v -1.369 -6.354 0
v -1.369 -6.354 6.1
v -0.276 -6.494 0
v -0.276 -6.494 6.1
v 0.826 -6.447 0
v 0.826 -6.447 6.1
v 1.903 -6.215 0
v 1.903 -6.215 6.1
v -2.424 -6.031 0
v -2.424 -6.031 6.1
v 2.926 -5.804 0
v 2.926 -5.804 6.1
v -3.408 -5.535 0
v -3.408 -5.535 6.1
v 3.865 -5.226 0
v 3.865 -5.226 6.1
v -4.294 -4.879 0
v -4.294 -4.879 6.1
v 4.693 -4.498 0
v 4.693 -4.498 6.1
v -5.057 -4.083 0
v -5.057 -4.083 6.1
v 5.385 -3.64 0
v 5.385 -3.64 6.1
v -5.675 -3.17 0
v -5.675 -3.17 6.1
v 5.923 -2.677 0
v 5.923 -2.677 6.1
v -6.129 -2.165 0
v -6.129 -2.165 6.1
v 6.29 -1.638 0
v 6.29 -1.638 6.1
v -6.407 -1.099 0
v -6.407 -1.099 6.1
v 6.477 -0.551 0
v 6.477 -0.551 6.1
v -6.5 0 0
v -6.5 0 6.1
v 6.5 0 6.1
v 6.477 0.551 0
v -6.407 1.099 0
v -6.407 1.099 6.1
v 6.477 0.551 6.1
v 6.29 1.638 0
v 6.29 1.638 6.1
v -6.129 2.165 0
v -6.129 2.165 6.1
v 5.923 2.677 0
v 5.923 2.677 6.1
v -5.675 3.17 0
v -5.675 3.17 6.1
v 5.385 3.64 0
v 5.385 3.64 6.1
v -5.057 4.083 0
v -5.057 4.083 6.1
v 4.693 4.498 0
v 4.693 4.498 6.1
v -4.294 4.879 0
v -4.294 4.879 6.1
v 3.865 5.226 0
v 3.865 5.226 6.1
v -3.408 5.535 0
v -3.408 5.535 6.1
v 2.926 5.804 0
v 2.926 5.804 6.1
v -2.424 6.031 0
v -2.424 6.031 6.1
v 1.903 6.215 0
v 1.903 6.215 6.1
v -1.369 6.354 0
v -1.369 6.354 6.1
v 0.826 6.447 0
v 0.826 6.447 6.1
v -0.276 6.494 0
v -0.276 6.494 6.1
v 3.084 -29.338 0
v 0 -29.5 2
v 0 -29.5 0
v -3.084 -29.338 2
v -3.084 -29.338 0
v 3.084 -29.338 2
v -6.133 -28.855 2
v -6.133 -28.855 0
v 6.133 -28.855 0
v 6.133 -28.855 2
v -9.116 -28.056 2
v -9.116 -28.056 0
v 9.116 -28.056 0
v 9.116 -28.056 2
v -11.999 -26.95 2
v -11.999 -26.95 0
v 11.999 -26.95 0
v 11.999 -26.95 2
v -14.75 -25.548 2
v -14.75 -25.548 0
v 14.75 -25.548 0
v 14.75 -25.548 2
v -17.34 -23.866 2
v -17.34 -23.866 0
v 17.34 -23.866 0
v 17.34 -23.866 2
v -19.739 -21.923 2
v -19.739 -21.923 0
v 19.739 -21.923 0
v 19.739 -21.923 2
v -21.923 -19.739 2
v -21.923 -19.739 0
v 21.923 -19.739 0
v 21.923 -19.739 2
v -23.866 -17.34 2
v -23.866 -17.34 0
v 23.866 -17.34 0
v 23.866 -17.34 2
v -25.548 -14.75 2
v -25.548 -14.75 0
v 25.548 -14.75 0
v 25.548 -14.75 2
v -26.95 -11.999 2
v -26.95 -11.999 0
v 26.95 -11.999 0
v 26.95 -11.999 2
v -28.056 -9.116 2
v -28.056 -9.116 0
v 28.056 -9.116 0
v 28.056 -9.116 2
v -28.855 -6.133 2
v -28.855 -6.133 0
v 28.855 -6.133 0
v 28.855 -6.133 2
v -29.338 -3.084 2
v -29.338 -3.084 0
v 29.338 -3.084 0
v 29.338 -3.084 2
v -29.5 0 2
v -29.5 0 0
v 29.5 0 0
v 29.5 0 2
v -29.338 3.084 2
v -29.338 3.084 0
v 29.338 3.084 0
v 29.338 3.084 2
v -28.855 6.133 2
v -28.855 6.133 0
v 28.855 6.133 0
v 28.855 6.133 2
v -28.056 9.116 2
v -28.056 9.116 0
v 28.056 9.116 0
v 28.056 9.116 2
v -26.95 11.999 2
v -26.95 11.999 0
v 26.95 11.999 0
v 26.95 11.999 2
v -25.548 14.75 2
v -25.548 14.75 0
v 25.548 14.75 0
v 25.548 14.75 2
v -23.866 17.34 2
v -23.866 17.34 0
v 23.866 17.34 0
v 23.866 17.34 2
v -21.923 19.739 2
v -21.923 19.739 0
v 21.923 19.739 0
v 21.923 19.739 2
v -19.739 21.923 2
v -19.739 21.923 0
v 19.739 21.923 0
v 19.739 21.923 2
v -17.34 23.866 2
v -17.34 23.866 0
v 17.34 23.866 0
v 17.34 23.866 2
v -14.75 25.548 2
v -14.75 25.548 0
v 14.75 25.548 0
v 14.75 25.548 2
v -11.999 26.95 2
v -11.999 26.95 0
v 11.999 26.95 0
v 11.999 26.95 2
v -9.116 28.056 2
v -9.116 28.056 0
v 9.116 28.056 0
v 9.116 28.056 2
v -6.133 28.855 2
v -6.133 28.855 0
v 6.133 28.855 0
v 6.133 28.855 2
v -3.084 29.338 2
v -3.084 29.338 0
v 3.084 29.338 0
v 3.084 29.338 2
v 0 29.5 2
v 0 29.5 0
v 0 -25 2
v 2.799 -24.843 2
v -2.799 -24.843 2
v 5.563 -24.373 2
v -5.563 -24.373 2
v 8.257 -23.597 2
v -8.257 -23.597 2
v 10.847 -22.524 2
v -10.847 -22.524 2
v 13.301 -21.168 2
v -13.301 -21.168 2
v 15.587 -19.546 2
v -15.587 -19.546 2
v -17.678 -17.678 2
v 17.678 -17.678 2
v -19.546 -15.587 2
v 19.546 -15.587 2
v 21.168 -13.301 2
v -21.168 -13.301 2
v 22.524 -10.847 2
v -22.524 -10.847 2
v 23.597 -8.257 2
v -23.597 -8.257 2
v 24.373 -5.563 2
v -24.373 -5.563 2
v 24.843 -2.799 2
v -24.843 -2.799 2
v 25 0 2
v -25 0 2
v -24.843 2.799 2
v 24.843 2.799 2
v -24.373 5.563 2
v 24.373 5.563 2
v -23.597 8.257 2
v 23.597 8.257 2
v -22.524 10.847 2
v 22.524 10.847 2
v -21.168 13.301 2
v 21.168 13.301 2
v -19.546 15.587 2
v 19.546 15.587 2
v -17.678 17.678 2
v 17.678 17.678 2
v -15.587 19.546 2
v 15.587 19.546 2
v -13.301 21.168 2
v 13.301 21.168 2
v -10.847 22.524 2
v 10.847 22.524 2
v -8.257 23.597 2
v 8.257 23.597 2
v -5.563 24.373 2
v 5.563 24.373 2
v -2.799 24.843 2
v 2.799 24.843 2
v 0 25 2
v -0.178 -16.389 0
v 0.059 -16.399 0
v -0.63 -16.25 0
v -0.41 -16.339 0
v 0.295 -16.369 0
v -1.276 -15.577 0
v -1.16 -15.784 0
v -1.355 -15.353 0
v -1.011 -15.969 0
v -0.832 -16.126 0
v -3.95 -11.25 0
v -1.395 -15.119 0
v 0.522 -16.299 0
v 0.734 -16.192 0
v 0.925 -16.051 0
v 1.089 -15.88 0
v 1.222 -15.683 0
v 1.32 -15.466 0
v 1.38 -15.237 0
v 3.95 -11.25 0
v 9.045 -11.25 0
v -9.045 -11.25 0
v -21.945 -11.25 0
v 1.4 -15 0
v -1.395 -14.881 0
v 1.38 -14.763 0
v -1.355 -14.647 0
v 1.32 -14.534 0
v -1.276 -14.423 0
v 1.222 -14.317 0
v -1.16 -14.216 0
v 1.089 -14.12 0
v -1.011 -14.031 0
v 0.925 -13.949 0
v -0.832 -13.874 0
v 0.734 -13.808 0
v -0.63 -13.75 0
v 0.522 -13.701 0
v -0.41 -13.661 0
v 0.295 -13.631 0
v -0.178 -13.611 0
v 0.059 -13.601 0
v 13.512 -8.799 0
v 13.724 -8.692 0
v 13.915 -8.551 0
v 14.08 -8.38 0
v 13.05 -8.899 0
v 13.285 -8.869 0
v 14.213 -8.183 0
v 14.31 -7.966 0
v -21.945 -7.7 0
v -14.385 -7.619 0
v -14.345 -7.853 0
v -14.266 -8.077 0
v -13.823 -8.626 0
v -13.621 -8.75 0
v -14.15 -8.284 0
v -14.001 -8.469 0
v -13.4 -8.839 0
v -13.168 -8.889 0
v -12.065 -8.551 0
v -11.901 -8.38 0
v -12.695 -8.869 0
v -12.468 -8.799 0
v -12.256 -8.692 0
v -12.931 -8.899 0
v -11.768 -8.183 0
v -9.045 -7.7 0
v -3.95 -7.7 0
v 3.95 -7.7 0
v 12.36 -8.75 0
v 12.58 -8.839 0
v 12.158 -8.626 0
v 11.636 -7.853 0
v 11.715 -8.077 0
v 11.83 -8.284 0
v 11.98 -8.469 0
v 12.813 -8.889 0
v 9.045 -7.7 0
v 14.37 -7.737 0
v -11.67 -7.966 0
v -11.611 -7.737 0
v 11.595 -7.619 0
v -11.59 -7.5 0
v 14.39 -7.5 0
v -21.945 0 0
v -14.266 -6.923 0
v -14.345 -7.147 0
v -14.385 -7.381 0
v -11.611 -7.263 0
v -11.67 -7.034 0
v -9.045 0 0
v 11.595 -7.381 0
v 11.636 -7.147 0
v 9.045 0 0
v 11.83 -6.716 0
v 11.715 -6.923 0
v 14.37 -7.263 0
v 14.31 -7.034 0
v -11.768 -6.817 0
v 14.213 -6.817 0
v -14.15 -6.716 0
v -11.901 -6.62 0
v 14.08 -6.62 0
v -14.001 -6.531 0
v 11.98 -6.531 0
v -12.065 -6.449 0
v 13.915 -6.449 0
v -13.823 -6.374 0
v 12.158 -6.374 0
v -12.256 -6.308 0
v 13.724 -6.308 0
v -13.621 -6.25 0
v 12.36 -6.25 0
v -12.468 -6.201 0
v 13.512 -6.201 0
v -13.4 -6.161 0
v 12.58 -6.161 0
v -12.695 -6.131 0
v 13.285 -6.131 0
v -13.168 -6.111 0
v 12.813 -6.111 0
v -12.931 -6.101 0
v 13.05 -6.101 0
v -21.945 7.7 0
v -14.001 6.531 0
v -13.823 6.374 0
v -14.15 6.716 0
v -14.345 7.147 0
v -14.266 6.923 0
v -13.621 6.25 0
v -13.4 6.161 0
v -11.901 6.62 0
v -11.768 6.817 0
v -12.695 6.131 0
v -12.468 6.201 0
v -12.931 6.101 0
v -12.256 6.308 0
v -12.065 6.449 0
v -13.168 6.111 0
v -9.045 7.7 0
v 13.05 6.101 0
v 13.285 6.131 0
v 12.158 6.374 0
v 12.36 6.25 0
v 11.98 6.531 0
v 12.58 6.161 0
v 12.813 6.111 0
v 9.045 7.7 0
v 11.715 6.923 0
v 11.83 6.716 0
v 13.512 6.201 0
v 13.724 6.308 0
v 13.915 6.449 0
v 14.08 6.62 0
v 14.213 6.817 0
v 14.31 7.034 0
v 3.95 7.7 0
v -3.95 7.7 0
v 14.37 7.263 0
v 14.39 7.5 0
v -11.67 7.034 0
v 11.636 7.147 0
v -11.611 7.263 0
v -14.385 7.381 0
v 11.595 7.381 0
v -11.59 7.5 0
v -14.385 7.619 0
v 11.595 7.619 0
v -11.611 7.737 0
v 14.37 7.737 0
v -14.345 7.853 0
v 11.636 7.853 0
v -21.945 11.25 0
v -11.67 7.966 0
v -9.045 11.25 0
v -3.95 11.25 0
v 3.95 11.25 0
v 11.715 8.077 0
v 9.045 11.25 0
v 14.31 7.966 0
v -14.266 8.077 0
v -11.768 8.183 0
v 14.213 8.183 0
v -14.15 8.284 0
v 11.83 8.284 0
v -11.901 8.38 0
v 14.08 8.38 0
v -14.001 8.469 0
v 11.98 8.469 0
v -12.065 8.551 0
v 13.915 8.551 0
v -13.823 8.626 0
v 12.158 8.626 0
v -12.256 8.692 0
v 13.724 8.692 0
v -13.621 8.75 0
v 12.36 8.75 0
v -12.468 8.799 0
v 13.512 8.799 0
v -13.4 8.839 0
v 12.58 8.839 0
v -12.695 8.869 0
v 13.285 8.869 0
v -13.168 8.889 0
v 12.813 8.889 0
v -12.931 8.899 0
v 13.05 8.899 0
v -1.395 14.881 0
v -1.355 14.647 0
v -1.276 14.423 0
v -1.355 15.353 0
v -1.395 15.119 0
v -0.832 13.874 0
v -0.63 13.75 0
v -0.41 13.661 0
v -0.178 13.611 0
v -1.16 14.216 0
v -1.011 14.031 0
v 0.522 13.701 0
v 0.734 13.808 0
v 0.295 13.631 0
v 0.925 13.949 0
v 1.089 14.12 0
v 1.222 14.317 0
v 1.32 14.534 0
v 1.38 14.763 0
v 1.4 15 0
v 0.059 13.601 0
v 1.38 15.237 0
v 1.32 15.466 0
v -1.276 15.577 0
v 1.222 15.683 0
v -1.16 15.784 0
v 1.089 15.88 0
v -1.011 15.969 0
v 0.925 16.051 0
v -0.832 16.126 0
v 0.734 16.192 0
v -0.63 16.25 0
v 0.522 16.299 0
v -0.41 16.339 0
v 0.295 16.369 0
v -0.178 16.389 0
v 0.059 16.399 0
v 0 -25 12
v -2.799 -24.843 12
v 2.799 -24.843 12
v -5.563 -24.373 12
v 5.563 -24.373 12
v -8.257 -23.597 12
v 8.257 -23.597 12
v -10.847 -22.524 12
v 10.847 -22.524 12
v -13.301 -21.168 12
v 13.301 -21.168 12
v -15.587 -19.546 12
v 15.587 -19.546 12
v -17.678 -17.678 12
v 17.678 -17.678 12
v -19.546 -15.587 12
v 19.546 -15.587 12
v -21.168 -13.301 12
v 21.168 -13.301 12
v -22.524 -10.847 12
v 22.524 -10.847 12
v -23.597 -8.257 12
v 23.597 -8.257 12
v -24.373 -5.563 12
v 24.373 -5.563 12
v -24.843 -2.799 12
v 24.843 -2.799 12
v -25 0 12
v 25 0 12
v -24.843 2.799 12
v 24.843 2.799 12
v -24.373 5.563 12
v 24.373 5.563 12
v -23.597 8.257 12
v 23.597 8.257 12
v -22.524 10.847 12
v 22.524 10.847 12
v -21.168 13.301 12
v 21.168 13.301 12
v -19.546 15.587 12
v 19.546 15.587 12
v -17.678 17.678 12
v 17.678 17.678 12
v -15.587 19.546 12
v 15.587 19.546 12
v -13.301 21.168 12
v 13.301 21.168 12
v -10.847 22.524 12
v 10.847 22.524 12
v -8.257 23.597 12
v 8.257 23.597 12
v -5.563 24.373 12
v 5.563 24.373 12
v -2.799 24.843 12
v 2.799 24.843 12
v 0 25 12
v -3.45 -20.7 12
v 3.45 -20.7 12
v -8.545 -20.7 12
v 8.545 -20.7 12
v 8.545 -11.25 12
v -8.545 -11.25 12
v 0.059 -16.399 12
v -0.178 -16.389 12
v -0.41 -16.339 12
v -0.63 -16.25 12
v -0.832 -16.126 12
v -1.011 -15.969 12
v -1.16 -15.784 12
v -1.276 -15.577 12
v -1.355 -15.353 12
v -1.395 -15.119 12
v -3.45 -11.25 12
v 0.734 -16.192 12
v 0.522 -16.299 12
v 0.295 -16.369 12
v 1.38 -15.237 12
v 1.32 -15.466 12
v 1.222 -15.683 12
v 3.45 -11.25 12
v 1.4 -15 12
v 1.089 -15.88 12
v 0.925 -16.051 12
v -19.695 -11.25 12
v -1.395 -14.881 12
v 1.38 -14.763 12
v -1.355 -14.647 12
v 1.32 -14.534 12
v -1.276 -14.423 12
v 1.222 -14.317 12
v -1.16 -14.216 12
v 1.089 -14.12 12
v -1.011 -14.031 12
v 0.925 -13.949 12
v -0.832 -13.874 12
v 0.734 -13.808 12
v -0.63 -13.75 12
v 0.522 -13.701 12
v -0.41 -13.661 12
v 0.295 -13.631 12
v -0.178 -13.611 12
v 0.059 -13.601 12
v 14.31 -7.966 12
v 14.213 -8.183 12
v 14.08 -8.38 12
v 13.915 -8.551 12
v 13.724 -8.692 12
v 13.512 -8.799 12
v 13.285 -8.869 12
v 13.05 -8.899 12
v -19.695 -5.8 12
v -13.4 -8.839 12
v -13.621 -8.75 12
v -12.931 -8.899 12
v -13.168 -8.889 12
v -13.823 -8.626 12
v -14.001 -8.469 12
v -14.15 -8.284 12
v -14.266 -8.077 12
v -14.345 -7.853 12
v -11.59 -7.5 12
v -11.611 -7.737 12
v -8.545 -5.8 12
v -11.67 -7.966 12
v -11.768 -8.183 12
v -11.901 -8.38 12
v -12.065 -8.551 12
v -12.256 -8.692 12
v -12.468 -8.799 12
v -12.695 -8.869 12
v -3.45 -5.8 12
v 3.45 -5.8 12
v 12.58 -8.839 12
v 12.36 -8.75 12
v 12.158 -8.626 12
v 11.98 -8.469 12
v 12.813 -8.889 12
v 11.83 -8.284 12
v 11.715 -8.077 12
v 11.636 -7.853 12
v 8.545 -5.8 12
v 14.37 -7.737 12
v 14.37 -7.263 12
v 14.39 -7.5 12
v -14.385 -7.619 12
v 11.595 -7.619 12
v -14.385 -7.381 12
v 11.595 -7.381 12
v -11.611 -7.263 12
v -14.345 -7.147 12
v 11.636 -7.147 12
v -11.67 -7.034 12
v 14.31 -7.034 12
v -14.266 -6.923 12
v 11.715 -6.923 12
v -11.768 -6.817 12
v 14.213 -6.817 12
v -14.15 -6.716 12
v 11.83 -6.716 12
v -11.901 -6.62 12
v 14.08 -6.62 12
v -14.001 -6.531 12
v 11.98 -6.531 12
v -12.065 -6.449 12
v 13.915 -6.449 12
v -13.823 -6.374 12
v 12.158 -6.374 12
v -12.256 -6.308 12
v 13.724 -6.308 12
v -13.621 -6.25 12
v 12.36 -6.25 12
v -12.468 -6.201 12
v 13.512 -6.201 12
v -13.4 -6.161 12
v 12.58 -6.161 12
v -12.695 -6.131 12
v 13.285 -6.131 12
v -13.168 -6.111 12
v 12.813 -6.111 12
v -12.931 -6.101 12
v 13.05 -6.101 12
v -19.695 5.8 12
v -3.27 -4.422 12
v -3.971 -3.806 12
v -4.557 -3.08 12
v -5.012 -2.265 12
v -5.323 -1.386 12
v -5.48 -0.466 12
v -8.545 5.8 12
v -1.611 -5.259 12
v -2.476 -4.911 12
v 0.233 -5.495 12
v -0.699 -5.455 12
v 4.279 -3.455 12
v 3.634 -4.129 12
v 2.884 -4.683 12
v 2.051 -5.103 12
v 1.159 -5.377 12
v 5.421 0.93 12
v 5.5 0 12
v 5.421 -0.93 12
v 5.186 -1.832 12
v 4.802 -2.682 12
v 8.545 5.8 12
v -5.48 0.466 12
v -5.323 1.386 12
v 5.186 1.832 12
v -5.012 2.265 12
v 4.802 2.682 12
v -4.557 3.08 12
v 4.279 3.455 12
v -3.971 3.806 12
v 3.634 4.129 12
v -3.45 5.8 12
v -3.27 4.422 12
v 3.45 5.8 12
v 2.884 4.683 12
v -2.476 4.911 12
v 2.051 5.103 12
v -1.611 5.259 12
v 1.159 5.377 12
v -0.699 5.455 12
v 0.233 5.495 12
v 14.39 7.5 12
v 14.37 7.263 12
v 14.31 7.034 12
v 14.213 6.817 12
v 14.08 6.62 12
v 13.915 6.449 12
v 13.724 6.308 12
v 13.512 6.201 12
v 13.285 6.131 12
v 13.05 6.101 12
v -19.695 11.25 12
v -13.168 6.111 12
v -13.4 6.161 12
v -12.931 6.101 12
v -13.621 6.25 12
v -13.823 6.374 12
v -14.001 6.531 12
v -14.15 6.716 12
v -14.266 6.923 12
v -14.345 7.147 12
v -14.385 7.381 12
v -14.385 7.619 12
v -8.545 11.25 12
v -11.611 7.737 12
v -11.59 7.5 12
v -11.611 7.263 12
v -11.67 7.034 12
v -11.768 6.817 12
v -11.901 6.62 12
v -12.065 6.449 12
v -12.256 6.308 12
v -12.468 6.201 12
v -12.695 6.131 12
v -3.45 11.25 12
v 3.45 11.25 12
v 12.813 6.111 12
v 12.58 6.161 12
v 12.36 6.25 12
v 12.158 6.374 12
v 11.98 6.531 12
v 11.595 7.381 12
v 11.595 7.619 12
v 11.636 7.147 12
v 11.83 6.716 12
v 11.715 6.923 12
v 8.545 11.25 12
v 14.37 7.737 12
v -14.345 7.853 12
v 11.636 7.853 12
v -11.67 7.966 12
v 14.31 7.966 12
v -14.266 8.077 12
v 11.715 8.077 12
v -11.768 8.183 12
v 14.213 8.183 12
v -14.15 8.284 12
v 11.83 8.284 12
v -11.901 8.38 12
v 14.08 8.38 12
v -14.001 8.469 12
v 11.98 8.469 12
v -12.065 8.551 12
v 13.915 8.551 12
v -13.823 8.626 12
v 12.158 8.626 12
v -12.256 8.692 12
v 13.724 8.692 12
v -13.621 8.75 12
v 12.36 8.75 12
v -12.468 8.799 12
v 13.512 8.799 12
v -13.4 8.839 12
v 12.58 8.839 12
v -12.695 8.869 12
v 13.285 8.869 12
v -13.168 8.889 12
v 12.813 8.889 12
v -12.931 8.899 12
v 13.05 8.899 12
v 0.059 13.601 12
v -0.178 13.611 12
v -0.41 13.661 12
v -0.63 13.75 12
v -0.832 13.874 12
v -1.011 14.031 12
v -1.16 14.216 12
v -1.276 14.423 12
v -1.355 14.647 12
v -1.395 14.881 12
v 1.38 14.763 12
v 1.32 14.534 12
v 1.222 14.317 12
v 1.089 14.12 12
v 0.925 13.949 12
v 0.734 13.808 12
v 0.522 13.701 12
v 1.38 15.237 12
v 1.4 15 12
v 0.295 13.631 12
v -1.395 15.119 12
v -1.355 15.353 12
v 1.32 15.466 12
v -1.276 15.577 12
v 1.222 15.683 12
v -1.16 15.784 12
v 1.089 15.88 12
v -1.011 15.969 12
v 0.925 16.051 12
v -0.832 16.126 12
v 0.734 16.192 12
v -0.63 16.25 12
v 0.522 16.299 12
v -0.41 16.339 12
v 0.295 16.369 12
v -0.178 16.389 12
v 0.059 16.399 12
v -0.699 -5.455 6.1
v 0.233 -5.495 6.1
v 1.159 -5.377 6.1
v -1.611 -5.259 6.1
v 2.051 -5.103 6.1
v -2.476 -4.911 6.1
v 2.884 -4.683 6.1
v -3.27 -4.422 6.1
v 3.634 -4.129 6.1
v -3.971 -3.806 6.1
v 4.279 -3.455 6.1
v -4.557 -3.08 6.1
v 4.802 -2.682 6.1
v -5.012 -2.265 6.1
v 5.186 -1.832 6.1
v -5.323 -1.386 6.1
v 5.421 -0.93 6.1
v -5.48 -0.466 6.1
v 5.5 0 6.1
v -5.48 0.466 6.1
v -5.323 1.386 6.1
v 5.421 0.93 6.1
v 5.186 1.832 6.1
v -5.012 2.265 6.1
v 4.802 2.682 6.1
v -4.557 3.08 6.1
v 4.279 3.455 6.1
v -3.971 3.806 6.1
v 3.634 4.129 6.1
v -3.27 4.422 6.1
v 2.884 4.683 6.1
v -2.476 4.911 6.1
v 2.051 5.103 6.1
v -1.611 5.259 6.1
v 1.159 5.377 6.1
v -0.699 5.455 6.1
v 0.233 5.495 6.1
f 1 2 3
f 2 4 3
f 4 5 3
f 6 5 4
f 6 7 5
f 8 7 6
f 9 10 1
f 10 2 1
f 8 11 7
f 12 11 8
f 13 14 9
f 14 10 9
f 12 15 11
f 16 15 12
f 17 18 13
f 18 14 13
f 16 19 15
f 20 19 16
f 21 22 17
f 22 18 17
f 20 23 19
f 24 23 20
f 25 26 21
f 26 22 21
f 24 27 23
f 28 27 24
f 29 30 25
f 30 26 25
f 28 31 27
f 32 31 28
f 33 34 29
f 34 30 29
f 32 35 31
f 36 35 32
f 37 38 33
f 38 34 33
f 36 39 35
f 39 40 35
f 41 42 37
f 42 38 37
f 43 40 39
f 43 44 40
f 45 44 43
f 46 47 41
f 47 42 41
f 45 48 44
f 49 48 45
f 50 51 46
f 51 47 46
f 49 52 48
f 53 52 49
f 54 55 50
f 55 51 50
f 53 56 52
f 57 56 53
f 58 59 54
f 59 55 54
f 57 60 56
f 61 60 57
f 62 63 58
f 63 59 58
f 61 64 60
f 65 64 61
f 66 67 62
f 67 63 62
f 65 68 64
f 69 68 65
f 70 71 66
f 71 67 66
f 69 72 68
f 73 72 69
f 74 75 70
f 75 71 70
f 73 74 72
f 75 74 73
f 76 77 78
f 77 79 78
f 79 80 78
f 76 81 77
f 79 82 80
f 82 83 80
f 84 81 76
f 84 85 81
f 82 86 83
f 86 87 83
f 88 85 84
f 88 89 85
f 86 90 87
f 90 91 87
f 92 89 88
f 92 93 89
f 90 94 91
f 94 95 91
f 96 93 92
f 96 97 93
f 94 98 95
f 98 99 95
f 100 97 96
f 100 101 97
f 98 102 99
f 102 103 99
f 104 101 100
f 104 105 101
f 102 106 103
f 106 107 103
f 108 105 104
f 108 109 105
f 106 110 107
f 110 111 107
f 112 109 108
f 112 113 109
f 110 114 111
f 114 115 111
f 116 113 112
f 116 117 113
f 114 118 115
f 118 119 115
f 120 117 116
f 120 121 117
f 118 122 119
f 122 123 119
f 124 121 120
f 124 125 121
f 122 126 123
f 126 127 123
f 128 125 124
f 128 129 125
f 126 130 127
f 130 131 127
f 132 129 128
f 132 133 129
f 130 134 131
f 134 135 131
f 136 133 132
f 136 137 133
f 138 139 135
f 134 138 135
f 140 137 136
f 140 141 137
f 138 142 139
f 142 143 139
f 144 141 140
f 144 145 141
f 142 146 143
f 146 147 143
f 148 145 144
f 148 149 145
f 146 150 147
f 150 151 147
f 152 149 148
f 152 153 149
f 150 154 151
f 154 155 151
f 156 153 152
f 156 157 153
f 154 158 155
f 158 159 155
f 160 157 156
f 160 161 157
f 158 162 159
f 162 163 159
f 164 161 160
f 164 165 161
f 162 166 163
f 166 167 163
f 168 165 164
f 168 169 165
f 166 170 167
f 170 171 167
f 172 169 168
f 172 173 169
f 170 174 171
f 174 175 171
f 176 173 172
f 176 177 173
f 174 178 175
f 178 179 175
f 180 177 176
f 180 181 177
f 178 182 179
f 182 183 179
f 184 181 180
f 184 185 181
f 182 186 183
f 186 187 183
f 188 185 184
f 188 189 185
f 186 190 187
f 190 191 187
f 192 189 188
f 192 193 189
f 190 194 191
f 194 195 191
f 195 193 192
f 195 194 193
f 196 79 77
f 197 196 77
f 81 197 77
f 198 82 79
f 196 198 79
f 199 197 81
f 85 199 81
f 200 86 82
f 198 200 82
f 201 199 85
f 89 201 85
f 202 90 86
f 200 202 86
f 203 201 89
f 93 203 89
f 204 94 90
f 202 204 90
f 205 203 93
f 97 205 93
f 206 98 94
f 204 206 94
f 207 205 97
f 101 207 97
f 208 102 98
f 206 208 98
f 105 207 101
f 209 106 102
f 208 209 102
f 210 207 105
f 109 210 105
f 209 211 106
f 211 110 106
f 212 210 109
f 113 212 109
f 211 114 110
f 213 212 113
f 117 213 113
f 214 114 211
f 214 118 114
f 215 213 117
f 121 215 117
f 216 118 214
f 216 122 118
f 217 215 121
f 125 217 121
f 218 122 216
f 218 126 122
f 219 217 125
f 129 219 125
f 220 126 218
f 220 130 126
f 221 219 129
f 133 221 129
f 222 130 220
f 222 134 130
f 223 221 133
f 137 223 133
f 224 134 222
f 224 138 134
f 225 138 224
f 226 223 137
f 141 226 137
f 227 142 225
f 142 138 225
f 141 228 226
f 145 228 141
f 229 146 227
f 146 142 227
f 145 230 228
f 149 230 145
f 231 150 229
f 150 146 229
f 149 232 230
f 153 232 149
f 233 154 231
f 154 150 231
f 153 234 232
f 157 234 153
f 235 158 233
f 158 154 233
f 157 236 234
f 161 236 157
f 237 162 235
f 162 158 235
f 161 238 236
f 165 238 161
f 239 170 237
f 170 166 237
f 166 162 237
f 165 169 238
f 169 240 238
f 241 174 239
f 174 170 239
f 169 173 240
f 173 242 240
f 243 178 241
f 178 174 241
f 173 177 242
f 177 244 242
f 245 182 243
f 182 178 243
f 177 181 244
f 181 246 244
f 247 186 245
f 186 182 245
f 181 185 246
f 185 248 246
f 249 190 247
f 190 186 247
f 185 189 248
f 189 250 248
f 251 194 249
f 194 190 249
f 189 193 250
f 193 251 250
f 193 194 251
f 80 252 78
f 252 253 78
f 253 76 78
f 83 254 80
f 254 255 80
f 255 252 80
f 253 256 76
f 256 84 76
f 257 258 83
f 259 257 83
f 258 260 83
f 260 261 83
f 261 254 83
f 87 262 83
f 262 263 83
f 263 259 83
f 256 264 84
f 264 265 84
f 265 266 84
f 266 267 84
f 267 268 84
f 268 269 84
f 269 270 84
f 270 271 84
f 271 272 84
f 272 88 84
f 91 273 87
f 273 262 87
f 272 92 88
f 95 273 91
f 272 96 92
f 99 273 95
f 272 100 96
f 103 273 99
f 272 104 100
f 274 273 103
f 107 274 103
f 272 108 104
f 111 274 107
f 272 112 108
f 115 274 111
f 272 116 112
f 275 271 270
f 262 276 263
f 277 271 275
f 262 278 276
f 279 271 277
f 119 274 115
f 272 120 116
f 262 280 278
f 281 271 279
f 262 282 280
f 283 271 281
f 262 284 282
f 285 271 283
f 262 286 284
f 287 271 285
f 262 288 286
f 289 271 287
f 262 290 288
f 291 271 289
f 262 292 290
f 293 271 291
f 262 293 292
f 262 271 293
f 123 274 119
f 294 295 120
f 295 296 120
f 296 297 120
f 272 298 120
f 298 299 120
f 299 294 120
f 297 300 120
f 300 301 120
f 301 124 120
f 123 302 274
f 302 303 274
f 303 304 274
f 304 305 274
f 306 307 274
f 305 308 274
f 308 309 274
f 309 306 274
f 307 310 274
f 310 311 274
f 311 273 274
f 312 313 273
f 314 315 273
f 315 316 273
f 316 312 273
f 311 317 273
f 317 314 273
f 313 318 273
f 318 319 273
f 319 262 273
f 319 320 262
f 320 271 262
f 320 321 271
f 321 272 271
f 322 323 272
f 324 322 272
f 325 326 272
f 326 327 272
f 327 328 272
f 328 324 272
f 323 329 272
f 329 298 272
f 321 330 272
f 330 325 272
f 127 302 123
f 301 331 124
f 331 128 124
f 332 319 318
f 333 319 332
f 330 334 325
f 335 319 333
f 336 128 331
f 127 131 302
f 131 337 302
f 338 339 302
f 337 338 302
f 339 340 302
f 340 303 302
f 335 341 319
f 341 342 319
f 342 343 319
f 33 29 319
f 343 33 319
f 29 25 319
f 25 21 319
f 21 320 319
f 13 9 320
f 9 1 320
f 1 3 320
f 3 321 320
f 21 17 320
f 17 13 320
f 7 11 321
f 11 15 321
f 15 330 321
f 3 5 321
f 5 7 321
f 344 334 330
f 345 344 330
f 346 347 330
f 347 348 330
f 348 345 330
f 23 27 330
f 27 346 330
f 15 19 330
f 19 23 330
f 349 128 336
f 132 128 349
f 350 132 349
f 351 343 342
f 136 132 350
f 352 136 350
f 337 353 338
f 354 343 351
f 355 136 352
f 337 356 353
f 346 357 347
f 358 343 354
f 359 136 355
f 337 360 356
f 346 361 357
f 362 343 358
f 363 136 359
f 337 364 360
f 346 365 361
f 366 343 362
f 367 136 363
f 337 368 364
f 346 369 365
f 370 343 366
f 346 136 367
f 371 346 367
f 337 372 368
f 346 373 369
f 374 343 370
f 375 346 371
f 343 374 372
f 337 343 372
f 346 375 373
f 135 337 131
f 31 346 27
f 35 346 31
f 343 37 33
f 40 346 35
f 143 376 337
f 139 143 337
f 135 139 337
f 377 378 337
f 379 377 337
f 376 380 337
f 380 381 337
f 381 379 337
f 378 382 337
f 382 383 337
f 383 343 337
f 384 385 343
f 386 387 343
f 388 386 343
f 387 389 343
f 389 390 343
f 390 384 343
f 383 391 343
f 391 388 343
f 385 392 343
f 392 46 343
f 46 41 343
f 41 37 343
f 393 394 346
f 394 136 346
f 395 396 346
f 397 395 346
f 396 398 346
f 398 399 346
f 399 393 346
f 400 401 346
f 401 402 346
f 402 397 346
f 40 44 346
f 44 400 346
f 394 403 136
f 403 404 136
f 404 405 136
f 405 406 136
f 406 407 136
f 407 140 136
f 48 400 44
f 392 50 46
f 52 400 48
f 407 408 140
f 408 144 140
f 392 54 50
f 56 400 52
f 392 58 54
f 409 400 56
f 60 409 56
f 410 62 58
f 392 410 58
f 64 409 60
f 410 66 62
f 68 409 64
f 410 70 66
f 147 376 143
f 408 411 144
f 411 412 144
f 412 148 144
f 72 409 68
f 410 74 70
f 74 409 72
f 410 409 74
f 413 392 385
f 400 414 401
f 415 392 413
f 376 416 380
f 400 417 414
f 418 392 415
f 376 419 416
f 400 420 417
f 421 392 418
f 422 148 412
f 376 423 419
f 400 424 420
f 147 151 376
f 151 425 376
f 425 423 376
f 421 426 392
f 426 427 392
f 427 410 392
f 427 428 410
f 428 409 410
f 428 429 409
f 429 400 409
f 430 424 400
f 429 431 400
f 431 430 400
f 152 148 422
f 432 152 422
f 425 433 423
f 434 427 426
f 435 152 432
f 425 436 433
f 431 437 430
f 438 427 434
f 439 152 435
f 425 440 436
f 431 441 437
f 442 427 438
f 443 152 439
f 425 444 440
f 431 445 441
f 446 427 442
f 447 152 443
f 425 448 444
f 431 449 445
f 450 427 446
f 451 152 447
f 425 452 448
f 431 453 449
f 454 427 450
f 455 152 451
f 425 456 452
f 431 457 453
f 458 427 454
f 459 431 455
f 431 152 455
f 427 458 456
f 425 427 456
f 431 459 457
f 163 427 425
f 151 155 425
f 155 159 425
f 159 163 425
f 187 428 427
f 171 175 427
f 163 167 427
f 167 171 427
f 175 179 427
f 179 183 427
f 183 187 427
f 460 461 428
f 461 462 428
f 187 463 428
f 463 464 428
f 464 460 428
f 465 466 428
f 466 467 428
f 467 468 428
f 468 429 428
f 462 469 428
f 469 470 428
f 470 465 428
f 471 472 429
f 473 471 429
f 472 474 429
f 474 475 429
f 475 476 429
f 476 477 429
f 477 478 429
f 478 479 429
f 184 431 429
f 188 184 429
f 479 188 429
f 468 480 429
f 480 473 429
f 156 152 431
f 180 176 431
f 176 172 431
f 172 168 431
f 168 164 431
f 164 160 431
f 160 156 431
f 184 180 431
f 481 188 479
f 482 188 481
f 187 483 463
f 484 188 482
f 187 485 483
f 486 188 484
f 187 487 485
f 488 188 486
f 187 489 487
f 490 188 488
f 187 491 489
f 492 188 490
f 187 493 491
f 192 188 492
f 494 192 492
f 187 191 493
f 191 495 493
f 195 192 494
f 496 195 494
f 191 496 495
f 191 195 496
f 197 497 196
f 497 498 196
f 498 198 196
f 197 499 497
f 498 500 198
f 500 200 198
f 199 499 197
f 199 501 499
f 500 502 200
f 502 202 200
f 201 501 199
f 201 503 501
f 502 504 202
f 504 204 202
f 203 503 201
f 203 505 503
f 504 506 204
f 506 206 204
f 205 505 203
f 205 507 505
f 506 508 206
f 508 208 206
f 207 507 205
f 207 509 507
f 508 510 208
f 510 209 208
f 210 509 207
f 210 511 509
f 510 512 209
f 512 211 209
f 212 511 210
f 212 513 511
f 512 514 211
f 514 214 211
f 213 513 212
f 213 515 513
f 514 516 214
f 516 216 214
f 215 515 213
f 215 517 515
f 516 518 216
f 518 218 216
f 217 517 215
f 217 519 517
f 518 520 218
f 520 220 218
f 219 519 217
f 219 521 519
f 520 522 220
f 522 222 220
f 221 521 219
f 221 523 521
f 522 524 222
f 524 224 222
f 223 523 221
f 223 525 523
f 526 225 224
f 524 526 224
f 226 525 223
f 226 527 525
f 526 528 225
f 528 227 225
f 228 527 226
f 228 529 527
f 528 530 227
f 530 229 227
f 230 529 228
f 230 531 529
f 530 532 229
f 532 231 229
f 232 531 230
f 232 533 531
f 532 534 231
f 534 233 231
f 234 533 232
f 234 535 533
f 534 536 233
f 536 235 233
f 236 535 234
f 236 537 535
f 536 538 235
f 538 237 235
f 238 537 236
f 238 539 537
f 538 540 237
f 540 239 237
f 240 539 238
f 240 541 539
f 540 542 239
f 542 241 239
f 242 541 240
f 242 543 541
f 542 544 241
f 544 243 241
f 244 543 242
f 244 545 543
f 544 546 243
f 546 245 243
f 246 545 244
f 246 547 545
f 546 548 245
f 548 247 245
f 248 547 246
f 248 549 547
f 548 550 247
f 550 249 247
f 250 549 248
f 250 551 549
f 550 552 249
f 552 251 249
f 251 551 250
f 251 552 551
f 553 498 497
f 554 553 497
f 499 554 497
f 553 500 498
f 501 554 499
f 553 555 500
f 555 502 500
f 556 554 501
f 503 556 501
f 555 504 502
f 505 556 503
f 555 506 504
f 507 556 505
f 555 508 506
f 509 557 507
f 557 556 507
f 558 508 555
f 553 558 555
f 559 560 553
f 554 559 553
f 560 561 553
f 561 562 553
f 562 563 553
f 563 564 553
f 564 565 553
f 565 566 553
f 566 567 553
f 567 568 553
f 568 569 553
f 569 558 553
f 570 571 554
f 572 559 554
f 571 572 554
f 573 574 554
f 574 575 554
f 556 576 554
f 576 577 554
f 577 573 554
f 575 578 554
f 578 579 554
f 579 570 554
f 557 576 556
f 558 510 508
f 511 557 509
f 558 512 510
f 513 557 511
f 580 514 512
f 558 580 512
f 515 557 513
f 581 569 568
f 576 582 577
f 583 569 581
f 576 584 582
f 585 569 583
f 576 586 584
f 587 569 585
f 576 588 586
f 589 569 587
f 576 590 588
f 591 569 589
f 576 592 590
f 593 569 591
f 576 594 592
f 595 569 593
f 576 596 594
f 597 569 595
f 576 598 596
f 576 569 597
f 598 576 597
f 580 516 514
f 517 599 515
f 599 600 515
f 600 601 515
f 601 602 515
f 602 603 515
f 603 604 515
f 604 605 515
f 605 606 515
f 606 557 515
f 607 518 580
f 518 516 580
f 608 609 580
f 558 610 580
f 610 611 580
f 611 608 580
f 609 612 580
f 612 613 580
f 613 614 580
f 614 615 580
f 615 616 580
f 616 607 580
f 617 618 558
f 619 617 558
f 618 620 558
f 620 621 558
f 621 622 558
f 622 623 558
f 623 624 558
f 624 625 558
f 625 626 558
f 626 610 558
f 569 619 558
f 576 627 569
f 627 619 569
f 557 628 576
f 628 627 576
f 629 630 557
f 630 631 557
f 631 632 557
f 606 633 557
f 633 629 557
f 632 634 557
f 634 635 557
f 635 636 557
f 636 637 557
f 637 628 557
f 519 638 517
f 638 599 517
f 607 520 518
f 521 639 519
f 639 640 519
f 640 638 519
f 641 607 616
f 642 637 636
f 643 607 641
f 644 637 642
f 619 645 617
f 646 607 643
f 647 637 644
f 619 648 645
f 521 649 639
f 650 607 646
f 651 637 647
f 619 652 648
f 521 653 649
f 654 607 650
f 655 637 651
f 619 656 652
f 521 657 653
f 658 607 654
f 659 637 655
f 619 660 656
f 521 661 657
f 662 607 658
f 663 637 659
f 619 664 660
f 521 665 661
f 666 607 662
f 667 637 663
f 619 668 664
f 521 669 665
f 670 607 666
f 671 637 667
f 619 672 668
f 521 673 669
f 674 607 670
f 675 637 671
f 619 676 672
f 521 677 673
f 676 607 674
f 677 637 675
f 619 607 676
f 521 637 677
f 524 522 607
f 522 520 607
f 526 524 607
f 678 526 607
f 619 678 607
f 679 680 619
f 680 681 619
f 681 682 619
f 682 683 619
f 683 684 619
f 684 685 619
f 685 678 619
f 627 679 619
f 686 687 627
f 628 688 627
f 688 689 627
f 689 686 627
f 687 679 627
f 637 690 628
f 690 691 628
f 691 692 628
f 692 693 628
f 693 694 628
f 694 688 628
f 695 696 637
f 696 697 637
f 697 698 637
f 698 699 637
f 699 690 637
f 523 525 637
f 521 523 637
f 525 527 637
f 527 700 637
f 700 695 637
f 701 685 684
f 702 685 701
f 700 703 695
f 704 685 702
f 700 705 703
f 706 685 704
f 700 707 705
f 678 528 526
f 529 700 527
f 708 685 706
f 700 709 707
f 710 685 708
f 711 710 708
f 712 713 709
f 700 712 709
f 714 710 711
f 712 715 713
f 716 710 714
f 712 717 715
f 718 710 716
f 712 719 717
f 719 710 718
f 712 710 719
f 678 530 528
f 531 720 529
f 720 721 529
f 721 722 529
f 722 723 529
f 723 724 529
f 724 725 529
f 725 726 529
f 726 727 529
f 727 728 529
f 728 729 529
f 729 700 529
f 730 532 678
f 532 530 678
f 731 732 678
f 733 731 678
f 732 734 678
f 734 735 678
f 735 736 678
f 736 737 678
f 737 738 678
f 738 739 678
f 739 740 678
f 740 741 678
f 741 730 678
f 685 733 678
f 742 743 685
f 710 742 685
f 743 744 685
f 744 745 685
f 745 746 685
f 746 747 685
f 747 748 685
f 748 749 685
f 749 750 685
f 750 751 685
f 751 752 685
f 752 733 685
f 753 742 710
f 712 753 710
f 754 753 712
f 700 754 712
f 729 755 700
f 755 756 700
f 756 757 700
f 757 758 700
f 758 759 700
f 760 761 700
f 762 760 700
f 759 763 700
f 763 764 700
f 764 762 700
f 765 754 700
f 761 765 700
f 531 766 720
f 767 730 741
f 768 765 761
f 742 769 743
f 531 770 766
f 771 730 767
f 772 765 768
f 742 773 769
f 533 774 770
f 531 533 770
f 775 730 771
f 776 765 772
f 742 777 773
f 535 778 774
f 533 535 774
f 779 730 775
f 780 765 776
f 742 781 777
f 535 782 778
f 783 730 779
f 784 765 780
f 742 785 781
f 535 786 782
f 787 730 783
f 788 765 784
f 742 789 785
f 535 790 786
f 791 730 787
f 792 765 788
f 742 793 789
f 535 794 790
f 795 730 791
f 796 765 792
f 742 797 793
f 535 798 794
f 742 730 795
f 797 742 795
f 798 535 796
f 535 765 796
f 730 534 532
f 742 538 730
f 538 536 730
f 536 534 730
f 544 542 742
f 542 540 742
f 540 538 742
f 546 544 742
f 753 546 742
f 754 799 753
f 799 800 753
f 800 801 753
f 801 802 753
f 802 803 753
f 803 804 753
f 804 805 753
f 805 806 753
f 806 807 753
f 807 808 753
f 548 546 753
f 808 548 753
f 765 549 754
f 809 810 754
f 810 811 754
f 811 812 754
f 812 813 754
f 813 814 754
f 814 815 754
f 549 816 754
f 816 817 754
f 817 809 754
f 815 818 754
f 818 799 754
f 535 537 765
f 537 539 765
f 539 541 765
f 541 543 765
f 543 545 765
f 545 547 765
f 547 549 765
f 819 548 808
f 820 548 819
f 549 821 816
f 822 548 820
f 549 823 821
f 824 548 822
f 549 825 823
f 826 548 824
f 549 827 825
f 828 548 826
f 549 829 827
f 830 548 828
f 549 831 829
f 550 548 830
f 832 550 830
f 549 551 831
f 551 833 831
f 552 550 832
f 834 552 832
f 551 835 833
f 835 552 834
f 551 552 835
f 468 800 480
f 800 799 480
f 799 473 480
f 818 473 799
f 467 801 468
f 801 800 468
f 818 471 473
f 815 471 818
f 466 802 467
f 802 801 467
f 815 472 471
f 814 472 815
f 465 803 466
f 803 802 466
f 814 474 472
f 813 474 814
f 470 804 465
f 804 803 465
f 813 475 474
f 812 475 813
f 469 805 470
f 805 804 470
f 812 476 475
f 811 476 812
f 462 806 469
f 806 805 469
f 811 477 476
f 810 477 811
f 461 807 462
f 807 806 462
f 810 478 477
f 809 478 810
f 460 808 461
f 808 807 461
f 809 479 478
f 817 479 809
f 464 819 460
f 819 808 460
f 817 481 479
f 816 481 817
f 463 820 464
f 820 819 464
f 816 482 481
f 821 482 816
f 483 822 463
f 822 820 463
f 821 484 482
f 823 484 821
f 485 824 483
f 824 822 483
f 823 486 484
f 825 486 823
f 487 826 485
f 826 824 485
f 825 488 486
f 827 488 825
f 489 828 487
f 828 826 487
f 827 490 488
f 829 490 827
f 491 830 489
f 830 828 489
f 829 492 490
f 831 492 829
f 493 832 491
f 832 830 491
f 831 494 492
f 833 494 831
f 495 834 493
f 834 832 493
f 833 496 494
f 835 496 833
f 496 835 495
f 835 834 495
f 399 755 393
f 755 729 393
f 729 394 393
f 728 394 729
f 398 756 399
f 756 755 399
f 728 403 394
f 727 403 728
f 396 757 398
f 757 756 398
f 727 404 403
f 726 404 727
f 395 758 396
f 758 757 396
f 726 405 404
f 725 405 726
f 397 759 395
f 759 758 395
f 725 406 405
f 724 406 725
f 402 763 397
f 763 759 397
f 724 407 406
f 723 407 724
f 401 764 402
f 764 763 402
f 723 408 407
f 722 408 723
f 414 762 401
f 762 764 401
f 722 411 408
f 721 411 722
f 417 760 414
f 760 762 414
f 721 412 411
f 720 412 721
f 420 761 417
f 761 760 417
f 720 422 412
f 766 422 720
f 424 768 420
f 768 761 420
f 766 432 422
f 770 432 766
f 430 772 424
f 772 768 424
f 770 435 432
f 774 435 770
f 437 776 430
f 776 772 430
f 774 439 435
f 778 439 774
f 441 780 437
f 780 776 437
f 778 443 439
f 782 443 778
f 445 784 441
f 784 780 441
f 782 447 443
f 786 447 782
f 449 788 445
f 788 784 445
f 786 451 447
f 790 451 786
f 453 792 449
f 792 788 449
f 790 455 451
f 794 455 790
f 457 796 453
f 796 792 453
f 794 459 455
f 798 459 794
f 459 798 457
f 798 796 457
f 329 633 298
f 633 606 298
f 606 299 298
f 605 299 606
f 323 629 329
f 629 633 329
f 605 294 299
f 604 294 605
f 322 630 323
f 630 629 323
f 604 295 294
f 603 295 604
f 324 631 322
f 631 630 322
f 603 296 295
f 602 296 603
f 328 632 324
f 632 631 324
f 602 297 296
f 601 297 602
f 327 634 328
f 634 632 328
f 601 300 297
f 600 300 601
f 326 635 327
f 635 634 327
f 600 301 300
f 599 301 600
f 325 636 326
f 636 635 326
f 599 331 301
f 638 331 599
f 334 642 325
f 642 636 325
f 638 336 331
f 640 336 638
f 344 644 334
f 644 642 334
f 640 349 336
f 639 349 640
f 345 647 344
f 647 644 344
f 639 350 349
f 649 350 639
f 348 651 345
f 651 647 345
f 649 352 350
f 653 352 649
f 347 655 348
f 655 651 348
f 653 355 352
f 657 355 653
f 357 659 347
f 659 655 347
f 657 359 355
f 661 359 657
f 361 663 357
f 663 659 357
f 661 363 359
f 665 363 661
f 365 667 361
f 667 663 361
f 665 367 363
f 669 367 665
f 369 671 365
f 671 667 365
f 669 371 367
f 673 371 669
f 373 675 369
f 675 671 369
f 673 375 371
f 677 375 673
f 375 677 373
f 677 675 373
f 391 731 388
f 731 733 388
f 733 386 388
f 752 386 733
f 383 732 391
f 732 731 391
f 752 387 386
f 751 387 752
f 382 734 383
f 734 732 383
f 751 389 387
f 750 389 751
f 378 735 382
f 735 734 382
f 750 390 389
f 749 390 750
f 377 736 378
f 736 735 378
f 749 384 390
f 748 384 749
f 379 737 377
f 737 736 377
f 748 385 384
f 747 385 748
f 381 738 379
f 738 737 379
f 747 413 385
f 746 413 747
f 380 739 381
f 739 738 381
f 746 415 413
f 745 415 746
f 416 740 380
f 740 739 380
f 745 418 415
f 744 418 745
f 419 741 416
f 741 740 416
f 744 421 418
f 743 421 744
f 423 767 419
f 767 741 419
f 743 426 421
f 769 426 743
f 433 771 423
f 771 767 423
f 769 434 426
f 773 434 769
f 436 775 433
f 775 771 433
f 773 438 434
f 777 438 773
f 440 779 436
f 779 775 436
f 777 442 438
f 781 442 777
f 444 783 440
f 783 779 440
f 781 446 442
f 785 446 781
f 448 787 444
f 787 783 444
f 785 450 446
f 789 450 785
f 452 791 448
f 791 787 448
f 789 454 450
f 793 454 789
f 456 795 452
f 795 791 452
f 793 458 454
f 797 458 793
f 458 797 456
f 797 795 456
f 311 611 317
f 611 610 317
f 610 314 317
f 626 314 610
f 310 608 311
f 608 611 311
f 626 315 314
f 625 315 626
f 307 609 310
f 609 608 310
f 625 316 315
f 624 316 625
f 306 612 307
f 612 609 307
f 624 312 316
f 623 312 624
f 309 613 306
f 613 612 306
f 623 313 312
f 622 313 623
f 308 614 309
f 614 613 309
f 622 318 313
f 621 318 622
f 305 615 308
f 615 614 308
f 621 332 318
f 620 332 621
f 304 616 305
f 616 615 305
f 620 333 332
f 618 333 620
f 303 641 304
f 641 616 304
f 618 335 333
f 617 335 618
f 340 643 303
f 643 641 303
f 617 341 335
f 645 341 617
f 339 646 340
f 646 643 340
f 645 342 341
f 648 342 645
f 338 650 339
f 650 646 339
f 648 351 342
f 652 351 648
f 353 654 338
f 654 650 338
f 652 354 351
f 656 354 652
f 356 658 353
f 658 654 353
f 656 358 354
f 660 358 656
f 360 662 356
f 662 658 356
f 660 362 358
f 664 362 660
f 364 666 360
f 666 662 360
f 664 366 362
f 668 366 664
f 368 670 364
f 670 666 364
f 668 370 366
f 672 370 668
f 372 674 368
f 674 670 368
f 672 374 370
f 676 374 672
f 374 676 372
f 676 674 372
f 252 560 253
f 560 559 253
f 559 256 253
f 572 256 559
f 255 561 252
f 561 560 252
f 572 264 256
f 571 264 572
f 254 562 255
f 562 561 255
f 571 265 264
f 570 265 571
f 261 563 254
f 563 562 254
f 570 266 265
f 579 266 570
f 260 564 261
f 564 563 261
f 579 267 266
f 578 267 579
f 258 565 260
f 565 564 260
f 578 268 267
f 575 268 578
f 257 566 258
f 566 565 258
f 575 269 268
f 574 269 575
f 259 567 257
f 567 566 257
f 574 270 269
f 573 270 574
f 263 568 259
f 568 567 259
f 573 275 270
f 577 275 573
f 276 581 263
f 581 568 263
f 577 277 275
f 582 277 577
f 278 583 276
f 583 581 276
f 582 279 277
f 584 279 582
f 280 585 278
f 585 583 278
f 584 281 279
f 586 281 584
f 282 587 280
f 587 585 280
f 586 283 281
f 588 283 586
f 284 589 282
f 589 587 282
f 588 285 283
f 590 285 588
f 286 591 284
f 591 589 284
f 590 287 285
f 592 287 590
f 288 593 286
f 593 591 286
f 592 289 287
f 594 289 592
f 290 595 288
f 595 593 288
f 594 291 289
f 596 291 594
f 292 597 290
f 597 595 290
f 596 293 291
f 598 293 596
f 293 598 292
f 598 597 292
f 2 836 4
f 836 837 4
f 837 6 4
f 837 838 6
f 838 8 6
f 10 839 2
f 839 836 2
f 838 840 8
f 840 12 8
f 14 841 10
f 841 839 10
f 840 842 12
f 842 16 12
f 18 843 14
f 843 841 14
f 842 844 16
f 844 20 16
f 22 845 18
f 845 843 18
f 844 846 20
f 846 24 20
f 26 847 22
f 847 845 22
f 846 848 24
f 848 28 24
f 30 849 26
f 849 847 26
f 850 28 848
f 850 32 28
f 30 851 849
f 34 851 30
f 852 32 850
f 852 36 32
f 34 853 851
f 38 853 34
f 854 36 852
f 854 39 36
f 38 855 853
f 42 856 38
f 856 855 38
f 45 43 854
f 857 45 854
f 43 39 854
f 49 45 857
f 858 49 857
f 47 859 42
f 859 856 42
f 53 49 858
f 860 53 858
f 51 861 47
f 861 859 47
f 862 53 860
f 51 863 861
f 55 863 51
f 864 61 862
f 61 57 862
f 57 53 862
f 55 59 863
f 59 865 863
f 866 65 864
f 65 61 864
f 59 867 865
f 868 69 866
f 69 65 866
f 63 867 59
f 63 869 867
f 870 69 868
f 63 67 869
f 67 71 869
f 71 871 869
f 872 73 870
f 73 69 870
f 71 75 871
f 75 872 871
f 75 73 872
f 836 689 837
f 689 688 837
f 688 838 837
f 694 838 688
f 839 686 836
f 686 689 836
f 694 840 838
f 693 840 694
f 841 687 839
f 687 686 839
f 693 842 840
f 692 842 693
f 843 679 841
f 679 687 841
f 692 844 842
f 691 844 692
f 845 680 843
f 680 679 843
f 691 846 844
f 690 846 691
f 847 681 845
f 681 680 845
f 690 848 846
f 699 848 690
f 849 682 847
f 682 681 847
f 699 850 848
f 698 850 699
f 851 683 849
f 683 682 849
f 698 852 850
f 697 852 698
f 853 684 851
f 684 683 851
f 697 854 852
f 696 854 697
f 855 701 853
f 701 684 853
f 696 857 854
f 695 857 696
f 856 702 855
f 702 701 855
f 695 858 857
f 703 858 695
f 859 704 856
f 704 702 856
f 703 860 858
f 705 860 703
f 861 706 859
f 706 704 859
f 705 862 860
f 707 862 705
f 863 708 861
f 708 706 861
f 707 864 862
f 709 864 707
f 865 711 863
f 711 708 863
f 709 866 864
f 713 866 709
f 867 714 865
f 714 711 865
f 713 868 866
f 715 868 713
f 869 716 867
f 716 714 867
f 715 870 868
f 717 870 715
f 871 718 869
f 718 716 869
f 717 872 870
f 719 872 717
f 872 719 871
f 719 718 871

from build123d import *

# Parameters (mm, degrees)
SKETCH_2_R          = 29.5
EXTRUDE_1_DEPTH     = 2
SKETCH_3_R          = 25
EXTRUDE_2_DEPTH     = 10
SKETCH_7_R          = 1.4
CUT_EXTRUDE_3_DEPTH = 12
CUT_EXTRUDE_4_REACH = 45.411
SKETCH_9_R          = 6.5
EXTRUDE_START       = -5.9
SKETCH_10_R         = 6.5
SKETCH_10_R_2       = 5.5
EXTRUDE_4_DEPTH     = 5.9


with BuildPart() as part:
    # 草图2 → 凸台-拉伸1 (new body)
    with BuildSketch(Plane.XY):
        Circle(SKETCH_2_R)
    extrude(amount=EXTRUDE_1_DEPTH)

    # 草图3 → 凸台-拉伸2 (add)
    with BuildSketch(Plane.XY.offset(2)):
        Circle(SKETCH_3_R)
    extrude(amount=EXTRUDE_2_DEPTH)

    # 草图7 → 切除-拉伸3 (cut)
    with BuildSketch(Plane.XY.offset(12)):
        with Locations((12.990381057, 7.5)):
            Circle(SKETCH_7_R)
        with Locations((12.990381057, -7.5)):
            Circle(SKETCH_7_R)
        with Locations((0, -15)):
            Circle(SKETCH_7_R)
        with Locations((-12.990381057, -7.5)):
            Circle(SKETCH_7_R)
        with Locations((-12.990381057, 7.5)):
            Circle(SKETCH_7_R)
        with Locations((0, 15)):
            Circle(SKETCH_7_R)
    extrude(amount=-CUT_EXTRUDE_3_DEPTH, mode=Mode.SUBTRACT)

    # 草图9 → 切除-拉伸4 (cut, up to next)
    with BuildSketch(Plane(origin=(0, 0, 0), x_dir=(-1, 0, 0), z_dir=(0, 0, -1)), mode=Mode.PRIVATE) as cut_extrude_4_sk1:
        Circle(SKETCH_9_R)
    cut_extrude_4_tool1 = extrude(cut_extrude_4_sk1.sketch, amount=-CUT_EXTRUDE_4_REACH, mode=Mode.PRIVATE) & part.part
    add(cut_extrude_4_tool1.solids().sort_by_distance((0, 0, 0))[0], mode=Mode.SUBTRACT)

    # 草图10 → 凸台-拉伸4 (add)
    with BuildSketch(Plane.XY.offset(12).offset(EXTRUDE_START)):
        with Locations(Location((0, 0, 0), (0, 0, 180))):
            Circle(SKETCH_10_R)
        Circle(SKETCH_10_R_2, mode=Mode.SUBTRACT)
    extrude(amount=EXTRUDE_4_DEPTH)


solid = part.part
